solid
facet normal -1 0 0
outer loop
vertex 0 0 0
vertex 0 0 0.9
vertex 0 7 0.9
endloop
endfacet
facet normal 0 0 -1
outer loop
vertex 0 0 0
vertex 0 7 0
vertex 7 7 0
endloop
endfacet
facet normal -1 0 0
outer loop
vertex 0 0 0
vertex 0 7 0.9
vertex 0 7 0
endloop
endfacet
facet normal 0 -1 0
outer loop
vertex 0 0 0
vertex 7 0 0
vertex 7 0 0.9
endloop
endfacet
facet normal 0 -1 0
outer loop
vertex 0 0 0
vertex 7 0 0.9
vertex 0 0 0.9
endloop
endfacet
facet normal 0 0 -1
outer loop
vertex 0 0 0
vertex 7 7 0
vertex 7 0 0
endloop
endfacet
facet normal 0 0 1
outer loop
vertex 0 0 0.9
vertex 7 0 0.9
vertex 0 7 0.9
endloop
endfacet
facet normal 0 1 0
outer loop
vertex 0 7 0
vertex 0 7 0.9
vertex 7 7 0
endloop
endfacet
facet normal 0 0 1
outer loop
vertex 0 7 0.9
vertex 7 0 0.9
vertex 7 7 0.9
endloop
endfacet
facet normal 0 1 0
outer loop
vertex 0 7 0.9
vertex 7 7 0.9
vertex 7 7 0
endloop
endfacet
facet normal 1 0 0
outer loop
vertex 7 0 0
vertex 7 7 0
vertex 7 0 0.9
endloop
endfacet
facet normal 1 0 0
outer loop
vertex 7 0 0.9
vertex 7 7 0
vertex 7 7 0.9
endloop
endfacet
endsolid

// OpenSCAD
/* Warning, this is a very basic generator with a lot of approximation 
input data : [VQFN, VQX, 7x7x0.9mm, 48, , A, C04-00347A]
generated by com.zoubworld.electronics.cad.model3d.Basic
Date : Sun Feb 15 10:50:48 CET 2026
*/

//body
color("black")
translate([0,0,0])
cube([7.0,7.0,0.9], center=false);
